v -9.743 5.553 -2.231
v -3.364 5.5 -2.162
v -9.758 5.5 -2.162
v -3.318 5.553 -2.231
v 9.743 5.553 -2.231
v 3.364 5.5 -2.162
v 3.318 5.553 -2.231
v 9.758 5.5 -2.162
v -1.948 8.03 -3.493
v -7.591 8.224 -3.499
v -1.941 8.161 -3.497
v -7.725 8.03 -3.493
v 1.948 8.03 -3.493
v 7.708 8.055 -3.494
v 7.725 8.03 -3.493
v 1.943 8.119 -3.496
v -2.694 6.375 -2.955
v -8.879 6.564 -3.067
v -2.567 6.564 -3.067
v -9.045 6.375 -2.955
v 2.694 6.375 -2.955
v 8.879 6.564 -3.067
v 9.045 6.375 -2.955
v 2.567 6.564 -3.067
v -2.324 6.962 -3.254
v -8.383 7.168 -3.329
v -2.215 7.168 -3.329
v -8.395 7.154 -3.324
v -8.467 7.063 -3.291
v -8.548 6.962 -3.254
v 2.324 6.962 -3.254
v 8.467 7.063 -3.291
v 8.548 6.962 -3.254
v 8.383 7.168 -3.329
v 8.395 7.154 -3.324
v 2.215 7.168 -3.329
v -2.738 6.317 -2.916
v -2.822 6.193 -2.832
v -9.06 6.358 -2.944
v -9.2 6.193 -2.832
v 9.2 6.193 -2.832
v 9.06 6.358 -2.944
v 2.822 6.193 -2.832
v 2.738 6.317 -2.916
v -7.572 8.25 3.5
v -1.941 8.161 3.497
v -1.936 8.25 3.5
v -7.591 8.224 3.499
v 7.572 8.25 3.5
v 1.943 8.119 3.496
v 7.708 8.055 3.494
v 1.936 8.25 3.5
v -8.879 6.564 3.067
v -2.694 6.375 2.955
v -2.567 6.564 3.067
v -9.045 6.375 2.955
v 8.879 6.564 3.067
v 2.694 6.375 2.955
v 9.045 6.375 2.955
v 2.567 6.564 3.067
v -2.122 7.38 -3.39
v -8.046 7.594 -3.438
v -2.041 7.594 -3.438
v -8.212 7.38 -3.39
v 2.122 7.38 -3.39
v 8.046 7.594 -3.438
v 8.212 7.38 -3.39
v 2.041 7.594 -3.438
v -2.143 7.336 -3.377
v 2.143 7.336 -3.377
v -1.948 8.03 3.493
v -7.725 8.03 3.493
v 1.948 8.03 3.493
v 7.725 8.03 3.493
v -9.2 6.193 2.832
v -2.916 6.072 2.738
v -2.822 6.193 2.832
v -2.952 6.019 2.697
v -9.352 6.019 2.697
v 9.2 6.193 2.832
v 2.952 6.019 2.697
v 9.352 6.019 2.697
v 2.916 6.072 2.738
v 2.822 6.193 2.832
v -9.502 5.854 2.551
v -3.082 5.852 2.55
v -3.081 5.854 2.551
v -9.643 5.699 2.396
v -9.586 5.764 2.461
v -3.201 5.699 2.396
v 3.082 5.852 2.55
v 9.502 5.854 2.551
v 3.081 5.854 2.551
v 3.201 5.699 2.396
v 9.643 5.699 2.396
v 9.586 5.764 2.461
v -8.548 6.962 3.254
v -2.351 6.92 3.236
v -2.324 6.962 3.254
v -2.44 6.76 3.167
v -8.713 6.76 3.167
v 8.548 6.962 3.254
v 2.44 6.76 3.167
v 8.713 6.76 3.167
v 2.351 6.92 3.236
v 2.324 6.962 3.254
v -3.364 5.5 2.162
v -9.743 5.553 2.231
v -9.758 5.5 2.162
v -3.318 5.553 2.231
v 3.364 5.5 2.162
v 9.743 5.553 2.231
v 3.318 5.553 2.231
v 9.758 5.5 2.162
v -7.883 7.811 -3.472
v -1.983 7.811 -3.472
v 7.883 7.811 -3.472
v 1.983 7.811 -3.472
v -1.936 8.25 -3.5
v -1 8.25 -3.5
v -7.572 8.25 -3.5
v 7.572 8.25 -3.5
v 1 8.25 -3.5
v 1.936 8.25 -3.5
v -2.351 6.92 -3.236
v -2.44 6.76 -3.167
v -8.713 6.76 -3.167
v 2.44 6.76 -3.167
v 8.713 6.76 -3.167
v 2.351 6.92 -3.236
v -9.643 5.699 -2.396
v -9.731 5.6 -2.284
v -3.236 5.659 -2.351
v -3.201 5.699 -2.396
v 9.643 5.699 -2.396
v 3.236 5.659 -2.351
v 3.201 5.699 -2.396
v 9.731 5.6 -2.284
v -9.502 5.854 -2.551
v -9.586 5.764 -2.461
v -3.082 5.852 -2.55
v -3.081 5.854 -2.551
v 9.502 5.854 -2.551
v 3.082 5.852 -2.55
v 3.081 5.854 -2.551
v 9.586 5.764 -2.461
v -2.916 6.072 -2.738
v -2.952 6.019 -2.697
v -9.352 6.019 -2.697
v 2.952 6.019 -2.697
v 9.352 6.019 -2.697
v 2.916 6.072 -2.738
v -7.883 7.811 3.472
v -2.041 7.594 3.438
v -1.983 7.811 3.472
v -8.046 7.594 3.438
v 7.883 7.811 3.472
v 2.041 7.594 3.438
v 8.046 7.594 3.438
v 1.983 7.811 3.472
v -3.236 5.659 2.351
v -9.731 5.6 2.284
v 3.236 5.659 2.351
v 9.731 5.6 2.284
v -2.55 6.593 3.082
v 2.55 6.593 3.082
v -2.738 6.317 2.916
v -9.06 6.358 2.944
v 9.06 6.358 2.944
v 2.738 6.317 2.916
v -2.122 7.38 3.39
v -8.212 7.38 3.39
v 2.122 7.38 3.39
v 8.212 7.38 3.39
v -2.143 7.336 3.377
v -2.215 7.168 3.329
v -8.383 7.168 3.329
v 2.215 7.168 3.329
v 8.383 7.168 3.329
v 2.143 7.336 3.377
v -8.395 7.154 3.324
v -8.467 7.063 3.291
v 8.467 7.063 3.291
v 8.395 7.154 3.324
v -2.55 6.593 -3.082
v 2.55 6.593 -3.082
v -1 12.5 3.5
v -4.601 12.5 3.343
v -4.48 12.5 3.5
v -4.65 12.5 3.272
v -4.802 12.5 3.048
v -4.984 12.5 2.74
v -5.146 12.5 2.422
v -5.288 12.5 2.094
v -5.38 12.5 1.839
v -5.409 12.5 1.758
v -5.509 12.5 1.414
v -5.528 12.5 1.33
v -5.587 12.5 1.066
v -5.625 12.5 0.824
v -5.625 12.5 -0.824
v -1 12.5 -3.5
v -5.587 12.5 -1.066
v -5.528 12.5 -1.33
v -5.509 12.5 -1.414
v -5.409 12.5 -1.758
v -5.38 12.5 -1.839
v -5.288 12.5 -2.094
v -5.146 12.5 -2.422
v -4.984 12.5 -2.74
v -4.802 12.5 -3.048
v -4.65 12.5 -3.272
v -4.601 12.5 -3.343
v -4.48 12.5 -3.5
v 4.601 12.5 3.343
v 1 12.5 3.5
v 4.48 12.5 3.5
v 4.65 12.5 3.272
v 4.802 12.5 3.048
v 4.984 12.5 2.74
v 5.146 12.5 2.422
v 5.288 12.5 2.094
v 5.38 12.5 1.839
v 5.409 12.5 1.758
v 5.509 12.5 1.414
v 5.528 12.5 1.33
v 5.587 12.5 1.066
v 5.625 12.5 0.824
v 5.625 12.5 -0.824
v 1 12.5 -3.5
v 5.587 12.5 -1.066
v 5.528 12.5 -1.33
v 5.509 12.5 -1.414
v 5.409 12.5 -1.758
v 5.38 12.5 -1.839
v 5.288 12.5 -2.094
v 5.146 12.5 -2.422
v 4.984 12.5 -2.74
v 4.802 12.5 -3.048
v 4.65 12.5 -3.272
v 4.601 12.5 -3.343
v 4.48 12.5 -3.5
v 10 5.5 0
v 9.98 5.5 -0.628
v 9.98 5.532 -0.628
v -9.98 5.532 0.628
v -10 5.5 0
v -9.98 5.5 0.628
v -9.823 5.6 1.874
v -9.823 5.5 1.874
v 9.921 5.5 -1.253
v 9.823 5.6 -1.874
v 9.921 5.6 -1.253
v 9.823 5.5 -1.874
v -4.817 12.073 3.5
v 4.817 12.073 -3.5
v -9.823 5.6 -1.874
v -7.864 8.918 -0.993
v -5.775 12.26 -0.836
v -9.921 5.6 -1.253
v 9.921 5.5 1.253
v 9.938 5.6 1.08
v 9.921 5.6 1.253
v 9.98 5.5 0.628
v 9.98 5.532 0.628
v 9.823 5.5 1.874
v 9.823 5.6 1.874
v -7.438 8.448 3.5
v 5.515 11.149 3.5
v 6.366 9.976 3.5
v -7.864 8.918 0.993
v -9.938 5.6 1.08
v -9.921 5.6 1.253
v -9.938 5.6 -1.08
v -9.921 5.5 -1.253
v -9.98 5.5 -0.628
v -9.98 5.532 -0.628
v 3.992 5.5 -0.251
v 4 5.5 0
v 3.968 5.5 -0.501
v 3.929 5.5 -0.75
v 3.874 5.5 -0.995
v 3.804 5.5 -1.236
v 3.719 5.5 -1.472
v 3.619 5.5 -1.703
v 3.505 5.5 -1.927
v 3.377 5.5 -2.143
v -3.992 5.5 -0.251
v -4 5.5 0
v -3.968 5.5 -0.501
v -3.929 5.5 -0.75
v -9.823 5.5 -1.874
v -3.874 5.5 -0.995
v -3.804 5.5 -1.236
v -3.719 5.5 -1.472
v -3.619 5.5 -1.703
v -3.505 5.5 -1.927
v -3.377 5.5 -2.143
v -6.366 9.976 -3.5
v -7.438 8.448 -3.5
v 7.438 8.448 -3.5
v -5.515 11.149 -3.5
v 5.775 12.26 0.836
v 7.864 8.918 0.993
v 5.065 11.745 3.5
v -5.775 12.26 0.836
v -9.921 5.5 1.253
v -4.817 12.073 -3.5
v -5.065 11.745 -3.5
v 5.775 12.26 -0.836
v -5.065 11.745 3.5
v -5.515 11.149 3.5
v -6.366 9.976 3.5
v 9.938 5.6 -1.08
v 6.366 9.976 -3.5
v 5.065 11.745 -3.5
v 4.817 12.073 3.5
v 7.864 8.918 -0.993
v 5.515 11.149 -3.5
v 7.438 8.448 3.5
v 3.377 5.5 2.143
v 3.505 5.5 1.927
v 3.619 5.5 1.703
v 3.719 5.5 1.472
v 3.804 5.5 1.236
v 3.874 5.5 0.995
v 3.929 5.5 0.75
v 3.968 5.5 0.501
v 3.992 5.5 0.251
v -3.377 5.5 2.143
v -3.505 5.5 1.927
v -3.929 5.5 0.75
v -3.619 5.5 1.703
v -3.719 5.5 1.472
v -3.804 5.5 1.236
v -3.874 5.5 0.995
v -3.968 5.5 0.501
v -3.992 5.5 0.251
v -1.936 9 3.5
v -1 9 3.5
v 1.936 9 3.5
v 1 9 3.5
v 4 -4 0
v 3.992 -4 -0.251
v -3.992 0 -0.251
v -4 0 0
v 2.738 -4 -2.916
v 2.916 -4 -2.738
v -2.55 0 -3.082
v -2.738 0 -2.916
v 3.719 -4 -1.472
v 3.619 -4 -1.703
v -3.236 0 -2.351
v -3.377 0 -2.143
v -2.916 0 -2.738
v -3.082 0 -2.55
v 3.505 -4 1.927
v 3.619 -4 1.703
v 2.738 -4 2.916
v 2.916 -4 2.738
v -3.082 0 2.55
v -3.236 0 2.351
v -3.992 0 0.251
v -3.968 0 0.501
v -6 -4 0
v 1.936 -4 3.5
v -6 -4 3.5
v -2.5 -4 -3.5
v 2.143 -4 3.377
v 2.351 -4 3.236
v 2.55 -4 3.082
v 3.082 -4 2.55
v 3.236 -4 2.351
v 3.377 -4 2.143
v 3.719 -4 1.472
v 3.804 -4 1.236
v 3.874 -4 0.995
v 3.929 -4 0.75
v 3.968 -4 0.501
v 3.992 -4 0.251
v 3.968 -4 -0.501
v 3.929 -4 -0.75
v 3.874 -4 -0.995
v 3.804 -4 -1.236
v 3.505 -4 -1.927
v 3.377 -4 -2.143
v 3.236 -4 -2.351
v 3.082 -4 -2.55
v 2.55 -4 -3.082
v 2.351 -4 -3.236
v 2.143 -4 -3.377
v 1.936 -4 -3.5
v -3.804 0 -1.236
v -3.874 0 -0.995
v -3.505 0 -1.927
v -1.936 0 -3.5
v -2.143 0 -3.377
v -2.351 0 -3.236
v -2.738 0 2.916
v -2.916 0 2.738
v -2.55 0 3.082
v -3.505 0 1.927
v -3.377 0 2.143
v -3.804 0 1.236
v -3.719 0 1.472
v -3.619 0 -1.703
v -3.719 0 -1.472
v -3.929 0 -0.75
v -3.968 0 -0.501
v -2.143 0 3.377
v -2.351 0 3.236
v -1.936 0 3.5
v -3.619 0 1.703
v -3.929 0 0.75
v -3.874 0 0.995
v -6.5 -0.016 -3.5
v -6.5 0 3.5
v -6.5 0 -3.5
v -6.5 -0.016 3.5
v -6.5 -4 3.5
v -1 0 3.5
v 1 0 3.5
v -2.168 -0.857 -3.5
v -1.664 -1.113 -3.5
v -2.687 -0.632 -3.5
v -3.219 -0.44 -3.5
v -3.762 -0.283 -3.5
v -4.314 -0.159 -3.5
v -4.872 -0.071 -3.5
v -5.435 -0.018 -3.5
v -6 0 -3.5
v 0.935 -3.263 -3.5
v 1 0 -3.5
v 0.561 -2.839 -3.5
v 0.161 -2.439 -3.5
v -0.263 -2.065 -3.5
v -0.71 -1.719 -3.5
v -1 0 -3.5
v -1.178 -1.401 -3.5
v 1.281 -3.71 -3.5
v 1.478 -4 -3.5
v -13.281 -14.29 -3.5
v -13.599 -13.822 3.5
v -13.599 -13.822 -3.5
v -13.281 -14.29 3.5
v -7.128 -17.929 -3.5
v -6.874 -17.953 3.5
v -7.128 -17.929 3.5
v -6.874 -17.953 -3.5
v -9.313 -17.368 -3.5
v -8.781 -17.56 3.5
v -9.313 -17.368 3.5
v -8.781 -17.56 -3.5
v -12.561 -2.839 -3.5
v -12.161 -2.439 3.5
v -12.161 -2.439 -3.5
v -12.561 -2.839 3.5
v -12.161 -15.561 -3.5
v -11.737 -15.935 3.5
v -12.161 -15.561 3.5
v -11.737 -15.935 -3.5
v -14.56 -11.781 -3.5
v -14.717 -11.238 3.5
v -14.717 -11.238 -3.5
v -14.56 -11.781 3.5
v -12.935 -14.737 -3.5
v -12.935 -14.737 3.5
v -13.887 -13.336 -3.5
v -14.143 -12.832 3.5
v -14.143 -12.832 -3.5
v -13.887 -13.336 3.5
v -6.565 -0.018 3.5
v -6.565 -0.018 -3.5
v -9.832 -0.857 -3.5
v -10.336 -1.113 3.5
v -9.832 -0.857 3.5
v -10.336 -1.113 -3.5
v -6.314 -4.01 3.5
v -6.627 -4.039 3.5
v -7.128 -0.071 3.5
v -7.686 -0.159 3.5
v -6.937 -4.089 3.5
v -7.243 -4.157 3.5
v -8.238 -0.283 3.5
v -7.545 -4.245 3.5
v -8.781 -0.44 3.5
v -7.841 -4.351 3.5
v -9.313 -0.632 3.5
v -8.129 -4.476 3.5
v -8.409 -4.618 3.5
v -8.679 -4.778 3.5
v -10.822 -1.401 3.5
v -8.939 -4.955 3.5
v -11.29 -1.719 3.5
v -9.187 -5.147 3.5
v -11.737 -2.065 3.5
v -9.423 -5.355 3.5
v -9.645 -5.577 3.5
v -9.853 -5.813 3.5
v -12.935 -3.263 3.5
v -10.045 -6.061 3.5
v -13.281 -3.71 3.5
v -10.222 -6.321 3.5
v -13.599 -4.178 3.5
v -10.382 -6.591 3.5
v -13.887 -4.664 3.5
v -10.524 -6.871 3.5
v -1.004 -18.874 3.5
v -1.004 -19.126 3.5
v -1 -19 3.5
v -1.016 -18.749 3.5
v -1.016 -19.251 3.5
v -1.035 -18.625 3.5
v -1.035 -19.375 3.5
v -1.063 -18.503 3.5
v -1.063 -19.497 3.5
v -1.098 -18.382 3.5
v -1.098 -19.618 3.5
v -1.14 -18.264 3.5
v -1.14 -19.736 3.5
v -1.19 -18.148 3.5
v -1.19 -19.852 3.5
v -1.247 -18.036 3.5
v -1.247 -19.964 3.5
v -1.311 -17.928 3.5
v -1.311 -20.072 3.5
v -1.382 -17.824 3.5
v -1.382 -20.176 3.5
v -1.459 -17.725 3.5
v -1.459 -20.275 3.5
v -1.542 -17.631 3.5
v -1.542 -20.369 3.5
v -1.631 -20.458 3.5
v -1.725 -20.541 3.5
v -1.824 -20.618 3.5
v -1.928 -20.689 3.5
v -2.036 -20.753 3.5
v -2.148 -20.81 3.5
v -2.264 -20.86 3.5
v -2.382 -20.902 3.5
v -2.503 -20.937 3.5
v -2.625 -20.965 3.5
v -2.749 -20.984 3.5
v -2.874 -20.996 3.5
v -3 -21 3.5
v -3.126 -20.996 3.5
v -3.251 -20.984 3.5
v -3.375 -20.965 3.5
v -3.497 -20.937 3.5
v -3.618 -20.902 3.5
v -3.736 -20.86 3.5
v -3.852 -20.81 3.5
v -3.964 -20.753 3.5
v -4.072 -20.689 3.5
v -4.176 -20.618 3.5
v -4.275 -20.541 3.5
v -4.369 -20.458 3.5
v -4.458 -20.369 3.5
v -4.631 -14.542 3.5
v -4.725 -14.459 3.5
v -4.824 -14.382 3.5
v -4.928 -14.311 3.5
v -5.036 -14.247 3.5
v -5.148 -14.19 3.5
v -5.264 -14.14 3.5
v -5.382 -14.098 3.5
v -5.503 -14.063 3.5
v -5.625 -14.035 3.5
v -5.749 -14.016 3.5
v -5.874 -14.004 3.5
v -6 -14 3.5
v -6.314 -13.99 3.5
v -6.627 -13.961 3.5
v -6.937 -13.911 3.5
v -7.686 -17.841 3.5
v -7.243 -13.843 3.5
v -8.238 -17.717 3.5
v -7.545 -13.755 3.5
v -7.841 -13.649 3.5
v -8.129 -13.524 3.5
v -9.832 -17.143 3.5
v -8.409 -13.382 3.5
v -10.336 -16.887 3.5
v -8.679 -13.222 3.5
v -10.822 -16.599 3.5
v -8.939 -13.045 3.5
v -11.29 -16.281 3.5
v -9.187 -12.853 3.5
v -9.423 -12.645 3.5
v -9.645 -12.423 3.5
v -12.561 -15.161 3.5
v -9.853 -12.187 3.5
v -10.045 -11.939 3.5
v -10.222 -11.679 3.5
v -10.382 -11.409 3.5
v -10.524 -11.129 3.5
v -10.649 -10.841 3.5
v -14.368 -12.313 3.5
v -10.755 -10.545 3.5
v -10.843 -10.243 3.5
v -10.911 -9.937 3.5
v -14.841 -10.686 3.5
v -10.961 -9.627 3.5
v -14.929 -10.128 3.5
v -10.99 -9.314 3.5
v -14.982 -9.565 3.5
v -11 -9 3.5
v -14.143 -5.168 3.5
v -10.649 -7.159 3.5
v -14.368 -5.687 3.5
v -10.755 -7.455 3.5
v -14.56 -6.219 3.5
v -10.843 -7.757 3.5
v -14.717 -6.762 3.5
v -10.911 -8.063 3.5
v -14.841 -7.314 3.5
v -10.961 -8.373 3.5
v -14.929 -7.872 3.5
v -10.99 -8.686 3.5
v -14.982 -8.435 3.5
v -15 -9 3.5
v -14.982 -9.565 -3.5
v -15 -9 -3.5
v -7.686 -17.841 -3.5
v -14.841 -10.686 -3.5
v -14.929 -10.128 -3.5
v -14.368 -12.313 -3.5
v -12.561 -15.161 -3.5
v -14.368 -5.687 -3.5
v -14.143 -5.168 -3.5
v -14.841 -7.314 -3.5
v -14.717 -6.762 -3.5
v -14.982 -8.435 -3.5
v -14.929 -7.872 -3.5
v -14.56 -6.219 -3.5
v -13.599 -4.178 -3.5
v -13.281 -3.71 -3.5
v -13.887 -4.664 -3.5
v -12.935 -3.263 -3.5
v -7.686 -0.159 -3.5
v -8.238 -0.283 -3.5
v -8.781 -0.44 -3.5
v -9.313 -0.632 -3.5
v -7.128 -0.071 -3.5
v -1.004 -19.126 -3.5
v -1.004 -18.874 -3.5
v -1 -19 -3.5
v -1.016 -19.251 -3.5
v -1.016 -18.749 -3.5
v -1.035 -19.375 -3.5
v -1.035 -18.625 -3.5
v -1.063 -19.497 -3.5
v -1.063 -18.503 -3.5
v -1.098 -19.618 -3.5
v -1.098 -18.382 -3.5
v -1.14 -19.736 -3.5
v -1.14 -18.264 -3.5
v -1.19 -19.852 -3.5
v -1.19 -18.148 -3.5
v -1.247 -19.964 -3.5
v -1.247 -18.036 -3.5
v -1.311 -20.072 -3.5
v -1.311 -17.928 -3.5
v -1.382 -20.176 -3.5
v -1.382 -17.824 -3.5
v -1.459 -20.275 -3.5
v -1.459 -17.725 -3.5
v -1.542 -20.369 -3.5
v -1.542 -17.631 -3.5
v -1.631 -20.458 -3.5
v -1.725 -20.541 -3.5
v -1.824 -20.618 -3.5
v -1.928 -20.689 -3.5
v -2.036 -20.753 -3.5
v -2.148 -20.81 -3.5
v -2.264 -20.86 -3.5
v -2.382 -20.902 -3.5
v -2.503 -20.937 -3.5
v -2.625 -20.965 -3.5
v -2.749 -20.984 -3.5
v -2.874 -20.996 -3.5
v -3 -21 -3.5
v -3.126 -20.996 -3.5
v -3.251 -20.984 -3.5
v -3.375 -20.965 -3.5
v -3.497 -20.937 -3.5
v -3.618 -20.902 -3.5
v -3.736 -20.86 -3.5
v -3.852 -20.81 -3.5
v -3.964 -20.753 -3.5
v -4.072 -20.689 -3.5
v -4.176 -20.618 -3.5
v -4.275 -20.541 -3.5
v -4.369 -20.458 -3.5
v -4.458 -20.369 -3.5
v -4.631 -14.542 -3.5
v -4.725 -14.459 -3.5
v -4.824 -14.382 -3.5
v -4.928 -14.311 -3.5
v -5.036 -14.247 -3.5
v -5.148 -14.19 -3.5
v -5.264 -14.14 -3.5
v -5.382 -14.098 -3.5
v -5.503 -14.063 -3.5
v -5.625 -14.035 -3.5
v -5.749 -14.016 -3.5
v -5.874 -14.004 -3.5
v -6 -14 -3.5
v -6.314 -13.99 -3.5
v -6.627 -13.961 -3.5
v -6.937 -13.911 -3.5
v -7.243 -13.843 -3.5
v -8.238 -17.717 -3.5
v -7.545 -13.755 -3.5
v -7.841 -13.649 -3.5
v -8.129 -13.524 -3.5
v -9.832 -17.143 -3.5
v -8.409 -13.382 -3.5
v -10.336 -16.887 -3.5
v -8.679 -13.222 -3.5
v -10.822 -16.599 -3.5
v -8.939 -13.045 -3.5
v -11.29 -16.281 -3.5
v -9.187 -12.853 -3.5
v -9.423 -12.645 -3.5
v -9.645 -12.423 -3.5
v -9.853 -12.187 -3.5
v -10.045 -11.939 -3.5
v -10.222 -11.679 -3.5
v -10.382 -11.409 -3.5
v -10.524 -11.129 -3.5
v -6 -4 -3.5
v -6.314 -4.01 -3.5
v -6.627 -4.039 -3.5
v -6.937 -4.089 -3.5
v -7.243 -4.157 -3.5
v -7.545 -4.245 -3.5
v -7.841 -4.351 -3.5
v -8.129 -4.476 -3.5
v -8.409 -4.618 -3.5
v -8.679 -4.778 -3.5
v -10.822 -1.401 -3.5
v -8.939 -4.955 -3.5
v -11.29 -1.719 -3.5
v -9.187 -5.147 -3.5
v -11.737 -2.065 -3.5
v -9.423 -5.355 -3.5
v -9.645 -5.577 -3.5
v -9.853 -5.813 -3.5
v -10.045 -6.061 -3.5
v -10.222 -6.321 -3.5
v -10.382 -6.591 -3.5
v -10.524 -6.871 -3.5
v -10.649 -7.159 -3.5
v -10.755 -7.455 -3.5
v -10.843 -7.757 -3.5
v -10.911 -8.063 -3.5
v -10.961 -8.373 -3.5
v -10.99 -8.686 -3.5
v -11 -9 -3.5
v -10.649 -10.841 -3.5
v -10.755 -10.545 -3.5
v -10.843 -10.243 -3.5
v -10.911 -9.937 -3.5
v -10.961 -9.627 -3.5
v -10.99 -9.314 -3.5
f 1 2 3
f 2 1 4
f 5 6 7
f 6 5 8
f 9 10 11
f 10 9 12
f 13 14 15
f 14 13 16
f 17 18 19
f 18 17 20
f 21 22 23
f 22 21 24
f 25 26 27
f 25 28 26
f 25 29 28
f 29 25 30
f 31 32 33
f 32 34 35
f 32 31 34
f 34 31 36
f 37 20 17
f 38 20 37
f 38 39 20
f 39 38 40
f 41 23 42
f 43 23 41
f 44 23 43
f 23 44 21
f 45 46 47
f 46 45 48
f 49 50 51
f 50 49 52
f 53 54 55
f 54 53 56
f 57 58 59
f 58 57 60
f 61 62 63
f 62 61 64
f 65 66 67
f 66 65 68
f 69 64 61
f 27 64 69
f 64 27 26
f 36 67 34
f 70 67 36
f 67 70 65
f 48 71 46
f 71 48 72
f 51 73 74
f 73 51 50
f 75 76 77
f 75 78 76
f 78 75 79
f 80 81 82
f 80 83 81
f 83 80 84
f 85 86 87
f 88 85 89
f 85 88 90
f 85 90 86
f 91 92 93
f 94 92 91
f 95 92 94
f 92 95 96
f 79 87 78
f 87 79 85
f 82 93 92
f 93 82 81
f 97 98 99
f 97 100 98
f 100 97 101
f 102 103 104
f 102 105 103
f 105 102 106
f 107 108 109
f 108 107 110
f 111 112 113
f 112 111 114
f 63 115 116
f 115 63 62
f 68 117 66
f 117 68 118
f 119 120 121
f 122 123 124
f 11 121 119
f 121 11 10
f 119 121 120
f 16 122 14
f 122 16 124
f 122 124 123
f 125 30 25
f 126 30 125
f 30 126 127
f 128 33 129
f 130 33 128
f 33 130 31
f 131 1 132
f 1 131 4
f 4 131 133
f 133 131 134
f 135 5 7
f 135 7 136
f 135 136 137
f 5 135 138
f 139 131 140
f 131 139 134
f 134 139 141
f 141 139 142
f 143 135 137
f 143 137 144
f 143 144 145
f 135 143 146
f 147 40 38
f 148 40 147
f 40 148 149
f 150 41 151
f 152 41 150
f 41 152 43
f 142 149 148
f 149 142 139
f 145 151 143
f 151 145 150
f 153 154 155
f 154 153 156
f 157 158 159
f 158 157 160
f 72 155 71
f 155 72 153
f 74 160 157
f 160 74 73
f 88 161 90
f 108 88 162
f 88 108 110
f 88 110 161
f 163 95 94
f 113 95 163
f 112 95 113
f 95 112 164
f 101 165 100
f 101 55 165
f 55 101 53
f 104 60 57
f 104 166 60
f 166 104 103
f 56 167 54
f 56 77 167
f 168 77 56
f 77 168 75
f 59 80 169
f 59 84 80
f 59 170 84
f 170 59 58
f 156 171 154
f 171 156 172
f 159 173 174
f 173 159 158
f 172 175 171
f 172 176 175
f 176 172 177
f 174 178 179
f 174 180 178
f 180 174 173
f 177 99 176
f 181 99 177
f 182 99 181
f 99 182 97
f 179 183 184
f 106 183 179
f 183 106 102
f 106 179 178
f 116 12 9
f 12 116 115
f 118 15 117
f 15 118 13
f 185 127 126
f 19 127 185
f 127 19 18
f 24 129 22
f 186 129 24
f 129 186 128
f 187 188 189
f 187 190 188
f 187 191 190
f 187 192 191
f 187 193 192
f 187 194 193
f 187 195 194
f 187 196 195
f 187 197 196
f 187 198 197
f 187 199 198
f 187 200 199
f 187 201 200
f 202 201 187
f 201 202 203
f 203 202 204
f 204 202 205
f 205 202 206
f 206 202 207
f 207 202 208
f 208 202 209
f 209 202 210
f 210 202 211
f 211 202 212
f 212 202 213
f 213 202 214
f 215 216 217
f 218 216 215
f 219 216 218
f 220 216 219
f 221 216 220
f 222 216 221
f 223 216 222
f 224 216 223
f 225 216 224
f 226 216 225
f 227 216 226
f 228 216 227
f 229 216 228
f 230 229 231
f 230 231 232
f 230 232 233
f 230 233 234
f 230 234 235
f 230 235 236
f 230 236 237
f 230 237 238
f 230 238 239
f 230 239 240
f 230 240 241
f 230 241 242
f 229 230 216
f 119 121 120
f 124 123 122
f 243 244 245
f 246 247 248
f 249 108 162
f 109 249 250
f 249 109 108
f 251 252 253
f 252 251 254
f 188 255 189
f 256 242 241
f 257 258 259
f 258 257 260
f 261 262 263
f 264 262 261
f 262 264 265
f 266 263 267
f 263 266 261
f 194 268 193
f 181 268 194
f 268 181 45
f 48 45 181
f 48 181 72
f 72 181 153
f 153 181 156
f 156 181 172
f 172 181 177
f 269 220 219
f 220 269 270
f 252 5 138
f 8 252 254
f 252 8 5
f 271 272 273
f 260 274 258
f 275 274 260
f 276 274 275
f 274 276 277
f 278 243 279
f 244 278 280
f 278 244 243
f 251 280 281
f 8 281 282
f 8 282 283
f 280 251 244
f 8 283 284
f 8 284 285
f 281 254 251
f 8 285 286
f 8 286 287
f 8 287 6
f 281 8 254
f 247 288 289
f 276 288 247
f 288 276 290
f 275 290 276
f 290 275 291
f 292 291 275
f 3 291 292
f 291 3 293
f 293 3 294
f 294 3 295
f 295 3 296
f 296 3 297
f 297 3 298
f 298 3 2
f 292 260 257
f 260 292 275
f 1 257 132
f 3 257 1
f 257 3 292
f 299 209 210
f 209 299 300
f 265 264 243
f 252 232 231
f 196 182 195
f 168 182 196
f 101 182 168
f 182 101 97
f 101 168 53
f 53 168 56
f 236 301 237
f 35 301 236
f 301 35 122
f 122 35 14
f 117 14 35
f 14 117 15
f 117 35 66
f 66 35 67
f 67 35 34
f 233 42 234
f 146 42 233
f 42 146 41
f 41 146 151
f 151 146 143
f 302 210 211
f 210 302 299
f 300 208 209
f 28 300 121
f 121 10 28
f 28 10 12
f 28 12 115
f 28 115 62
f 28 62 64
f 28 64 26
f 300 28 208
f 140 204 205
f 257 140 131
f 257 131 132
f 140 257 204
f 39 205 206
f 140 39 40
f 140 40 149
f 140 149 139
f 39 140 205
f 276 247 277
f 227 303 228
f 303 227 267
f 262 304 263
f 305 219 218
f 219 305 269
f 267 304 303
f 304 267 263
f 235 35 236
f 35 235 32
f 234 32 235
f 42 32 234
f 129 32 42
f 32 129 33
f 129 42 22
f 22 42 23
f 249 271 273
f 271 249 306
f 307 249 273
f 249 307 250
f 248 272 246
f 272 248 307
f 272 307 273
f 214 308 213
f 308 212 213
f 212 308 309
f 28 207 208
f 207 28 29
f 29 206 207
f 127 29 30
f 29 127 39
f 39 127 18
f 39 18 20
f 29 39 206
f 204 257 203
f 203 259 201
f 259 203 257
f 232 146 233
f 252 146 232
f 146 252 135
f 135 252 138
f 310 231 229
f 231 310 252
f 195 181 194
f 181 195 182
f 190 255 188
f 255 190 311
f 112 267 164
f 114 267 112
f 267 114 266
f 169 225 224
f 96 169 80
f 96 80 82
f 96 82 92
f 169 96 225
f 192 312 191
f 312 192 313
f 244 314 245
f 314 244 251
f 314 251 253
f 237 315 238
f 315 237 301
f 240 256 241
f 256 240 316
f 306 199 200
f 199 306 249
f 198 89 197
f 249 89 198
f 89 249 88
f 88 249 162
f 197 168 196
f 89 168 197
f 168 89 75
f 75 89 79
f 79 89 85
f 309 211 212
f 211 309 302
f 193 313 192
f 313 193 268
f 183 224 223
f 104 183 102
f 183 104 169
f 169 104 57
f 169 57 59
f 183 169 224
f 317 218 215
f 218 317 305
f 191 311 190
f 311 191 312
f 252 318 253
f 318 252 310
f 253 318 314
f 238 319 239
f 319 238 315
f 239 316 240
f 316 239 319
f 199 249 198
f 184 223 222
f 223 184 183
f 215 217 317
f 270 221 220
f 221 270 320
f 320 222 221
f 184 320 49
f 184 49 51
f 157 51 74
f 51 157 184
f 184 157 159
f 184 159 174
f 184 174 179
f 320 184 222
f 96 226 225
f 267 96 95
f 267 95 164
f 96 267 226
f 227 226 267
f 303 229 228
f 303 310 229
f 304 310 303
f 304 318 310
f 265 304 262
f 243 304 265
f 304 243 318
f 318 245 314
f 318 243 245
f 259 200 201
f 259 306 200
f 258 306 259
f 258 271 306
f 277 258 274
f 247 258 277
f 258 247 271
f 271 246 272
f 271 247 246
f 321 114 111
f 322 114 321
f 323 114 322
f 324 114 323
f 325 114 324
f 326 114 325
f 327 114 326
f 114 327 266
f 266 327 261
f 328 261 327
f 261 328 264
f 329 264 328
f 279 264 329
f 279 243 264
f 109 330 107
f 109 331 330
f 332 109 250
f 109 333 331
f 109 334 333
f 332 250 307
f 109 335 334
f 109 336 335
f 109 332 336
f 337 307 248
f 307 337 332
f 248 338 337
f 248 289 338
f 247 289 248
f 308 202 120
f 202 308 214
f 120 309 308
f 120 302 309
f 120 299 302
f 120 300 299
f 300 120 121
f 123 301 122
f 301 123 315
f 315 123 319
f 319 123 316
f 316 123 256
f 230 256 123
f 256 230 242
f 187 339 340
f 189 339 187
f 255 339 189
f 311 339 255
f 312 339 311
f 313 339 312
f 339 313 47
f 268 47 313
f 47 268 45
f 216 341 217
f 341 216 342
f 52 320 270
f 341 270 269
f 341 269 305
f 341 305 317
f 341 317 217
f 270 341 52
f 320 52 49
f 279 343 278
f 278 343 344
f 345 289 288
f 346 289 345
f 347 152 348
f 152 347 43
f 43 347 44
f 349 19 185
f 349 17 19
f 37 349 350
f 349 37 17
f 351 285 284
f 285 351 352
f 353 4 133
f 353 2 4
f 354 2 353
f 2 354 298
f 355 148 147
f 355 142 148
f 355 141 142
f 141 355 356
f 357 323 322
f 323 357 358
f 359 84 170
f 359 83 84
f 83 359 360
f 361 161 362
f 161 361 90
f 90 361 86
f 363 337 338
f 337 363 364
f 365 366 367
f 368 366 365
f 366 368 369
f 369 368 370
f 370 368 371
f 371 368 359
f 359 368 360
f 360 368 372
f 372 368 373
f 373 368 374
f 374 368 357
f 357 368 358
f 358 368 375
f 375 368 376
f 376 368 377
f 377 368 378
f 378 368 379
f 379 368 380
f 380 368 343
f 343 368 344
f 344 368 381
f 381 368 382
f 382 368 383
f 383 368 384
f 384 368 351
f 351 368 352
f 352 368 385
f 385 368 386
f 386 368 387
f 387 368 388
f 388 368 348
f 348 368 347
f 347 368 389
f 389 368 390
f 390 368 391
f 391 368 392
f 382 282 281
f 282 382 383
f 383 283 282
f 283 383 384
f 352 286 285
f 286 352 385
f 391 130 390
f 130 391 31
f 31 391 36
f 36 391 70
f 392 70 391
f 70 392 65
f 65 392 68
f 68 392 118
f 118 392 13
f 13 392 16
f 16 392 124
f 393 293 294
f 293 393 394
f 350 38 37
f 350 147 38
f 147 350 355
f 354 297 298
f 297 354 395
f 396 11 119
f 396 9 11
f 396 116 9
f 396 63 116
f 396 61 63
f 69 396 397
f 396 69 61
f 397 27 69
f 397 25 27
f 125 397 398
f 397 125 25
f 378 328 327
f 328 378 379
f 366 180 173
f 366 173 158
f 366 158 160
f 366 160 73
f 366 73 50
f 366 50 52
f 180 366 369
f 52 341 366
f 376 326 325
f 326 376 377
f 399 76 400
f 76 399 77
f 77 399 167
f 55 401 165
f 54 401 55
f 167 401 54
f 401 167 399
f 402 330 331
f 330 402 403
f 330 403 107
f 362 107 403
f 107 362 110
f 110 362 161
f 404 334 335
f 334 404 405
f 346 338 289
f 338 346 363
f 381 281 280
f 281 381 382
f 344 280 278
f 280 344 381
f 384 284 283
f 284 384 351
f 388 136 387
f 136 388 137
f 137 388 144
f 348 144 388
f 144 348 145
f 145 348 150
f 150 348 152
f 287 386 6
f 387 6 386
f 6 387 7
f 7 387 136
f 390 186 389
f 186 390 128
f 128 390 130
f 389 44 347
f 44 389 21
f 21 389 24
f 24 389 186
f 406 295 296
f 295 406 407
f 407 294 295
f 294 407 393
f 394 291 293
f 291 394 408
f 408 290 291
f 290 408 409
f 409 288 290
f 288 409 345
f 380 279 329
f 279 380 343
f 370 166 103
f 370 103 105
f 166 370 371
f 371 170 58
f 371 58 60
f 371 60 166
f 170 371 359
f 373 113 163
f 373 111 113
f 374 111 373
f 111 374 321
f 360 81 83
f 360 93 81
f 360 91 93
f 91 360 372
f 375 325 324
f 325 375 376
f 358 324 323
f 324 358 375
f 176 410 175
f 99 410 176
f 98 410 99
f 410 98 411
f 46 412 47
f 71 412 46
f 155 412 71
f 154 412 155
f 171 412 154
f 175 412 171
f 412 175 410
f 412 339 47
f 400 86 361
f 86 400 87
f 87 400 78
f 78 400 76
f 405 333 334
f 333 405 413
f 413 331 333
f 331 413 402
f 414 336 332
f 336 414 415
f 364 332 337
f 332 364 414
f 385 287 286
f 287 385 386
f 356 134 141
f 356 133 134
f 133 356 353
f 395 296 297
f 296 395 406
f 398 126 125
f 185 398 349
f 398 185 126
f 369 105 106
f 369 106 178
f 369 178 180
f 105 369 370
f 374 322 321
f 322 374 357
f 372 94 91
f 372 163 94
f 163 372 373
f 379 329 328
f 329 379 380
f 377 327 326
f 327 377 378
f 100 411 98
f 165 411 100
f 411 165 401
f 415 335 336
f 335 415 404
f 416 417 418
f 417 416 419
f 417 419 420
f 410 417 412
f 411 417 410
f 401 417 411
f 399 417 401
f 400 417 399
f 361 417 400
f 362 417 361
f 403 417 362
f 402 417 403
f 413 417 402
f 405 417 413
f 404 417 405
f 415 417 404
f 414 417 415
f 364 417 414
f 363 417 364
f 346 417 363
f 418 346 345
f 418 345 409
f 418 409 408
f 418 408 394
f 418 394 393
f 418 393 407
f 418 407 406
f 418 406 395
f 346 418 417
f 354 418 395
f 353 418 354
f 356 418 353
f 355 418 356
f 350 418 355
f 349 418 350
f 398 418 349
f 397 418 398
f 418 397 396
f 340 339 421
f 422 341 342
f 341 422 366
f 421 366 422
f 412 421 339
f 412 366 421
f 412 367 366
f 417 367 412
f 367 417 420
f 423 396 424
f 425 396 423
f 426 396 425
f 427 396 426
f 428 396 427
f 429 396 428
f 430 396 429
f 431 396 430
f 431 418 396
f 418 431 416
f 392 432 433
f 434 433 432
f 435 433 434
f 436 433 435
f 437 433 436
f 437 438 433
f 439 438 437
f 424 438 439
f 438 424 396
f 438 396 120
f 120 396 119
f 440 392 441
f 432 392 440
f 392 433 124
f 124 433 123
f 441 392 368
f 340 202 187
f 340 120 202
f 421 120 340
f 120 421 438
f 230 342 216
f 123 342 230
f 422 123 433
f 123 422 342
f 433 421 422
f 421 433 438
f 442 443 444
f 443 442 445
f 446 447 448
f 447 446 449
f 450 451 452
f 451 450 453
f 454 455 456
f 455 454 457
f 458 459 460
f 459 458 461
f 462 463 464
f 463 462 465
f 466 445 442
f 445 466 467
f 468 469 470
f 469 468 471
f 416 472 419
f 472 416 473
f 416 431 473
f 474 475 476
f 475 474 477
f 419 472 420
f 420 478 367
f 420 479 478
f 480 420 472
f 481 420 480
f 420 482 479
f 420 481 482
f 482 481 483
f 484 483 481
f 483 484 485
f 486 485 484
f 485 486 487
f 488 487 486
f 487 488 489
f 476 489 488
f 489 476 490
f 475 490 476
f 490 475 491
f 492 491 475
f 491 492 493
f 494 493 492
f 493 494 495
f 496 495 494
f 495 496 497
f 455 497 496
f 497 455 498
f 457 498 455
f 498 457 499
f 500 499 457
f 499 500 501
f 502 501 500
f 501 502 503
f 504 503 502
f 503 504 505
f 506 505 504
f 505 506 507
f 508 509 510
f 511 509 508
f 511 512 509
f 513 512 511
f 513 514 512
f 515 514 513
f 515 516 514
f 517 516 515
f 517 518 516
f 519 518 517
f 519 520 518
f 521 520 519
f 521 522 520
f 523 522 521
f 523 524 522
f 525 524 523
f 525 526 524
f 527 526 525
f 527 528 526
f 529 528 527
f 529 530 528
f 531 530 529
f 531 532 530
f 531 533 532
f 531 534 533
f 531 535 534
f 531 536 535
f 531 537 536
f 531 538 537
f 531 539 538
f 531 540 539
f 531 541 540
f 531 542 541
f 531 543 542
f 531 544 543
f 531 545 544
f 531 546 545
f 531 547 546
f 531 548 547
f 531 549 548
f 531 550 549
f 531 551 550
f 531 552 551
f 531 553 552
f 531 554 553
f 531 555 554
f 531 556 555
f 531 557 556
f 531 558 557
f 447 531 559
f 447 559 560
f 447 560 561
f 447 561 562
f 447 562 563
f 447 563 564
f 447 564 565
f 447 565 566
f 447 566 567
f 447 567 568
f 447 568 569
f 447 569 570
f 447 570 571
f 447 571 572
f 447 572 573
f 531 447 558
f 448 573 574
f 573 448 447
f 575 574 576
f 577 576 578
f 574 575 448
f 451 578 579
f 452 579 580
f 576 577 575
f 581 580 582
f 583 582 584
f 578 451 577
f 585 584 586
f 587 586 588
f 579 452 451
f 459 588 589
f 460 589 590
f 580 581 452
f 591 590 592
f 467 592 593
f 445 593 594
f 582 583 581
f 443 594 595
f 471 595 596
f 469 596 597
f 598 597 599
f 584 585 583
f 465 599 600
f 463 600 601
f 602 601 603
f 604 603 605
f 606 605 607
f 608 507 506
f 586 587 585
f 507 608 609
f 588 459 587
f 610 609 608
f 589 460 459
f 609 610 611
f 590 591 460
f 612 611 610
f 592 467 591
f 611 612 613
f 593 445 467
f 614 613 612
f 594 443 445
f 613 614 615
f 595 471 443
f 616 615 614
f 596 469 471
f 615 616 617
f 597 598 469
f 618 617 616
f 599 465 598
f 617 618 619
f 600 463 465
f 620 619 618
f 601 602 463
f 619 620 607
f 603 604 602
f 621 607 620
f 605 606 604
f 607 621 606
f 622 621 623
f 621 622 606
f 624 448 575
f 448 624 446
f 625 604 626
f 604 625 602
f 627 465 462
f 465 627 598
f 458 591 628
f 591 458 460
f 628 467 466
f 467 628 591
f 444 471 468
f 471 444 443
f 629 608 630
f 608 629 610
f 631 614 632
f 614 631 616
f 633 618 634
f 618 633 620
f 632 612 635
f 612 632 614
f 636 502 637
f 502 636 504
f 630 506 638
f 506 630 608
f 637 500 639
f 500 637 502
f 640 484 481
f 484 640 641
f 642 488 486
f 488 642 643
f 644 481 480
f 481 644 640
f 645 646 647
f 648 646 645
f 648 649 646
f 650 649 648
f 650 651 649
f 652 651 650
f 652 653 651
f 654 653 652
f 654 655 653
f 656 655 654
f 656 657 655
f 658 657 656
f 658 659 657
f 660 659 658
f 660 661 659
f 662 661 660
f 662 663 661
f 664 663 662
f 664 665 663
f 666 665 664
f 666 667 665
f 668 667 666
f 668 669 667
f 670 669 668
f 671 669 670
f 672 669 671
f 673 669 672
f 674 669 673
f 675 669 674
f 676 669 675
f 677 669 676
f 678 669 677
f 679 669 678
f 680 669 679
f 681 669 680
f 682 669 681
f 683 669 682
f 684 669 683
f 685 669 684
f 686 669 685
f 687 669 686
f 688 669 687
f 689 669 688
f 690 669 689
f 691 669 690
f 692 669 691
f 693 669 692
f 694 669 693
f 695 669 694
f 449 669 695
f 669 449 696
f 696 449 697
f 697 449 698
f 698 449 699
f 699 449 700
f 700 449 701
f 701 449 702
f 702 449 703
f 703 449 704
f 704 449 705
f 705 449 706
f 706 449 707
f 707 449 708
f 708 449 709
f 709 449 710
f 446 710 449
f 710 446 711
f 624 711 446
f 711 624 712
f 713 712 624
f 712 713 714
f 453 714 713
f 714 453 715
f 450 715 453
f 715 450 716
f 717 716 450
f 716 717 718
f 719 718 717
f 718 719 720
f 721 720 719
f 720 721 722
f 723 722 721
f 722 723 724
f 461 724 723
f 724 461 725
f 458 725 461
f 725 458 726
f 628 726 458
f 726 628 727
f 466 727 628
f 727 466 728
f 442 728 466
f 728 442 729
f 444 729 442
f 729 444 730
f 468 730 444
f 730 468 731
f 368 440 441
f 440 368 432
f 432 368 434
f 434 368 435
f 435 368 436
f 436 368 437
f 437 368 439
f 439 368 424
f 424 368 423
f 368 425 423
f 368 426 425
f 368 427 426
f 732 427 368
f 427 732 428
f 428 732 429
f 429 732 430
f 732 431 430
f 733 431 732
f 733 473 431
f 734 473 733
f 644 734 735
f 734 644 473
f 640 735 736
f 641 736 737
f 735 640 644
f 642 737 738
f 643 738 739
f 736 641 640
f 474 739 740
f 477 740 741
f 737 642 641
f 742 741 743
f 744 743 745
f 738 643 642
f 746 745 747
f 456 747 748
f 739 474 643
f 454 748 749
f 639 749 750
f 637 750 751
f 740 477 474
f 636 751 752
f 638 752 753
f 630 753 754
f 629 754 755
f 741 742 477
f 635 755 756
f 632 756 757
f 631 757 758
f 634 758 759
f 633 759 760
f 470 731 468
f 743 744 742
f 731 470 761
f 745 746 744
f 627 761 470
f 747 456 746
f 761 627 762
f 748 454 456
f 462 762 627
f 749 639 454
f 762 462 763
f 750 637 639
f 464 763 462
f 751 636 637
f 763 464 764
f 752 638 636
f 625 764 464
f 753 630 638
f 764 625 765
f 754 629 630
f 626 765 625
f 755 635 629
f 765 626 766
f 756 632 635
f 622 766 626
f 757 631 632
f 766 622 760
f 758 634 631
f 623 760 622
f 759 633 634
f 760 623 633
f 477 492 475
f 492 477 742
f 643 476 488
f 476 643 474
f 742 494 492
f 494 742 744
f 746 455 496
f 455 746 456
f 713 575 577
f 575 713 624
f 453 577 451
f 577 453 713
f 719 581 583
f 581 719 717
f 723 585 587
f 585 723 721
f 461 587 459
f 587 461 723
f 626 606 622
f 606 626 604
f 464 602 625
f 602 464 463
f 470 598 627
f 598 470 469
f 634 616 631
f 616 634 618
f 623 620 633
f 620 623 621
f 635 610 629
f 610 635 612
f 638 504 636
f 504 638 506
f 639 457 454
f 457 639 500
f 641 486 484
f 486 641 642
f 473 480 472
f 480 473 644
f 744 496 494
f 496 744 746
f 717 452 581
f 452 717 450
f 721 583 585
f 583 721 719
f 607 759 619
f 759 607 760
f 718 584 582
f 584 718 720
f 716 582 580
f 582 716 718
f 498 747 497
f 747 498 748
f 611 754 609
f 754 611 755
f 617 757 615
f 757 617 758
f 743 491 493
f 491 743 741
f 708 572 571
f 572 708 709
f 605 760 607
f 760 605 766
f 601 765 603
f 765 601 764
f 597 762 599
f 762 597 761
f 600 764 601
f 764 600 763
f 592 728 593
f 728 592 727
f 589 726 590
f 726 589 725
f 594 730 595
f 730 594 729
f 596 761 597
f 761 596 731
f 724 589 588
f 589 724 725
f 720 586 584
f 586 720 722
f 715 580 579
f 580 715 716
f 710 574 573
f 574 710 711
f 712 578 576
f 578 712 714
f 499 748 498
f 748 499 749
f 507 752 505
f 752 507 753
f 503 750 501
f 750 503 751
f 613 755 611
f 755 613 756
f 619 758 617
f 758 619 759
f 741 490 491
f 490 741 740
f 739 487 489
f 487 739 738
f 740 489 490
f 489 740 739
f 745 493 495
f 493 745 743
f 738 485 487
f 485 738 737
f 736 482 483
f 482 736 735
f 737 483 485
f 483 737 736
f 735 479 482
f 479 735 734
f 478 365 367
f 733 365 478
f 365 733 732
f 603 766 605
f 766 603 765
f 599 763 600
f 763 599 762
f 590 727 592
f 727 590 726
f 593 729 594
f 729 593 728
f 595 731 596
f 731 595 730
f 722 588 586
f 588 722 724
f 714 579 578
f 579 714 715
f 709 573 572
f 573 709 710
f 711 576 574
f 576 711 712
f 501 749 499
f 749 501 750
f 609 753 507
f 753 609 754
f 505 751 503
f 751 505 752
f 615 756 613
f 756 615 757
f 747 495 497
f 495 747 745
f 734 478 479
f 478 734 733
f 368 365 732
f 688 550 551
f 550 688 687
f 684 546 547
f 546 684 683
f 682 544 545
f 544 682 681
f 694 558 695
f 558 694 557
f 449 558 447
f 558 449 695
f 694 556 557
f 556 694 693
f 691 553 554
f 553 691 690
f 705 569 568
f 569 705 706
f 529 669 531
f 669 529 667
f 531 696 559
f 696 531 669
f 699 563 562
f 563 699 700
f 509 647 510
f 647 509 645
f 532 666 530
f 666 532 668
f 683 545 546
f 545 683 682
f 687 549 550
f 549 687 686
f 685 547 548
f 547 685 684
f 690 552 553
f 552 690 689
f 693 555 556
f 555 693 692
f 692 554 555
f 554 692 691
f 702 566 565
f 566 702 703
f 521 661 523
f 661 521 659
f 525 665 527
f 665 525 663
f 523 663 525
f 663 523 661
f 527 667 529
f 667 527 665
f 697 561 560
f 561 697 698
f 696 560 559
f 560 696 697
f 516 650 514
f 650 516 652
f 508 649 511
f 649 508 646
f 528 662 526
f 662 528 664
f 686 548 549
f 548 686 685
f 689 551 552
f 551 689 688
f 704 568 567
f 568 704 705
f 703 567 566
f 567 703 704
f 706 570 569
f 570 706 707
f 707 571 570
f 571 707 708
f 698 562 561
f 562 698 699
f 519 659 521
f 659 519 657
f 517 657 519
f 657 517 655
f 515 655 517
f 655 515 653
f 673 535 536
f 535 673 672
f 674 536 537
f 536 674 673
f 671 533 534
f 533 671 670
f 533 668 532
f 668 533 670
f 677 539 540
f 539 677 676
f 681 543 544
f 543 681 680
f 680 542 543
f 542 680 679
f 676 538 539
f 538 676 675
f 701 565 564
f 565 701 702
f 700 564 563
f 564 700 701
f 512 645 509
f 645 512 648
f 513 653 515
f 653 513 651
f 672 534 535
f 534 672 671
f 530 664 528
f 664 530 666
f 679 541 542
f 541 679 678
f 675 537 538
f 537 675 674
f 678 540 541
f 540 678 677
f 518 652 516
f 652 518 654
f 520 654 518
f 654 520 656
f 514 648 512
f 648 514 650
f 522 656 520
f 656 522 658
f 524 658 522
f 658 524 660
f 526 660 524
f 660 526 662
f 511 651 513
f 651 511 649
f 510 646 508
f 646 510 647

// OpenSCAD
$fn=100;
/*
    Parametric Hooks For Tslot Mounting
    By Brian Khuu (2020)
    
    Got a desk with tslot rails, would be nice to mount stuff on it...
*/

/* [Tslot Spec] */
// CenterDepth
tslot_centerdepth = 5+0.5;
// CenterWidth
tslot_centerwidth = 8; // Gap to slot the clip though
// For the wedge... its based on a 4040mm Tslot... so may need to modify polygon() in this script

/* [Hook Spec] */
// Hook Diameter
hookdia=10;
// Hook Flange
hookflange=3;
// Hook Width
hookwidth=7;
// Hook Thickness
hookthickness=4;

union()
{
    difference()
    {
        union()
        {
            // Tslot Mount Inner
            translate([0, tslot_centerdepth, 0])
                intersection()
                {
                    heightlim=7;
                    linear_extrude(height = hookwidth, center = true)
                        polygon(points=[[-10,0],[-5,8],[5,8],[10,0]]);
                    rotate([-90,0,0])
                        intersection()
                        {
                            hull()
                            {
                                translate([0,0,0]) cylinder(r=10, h=0.1);
                                translate([0,0,8]) cylinder(r=5, h=0.1);
                            }
                            union()
                            {
                                translate([0,0,heightlim/2+tslot_centerdepth/4]) 
                                    cube([20,20,heightlim-tslot_centerdepth/2], center = true);
                                intersection()
                                {
                                    rotate([0,90,0])
                                        translate([-tslot_centerdepth/2,0,0]) 
                                        cylinder(r=hookwidth/2, h=20, center = true);
                                    cube([20,20,hookwidth+1], center = true);
                                }
                            }
                        }
                }

            // tslot mount shaft
            translate([0, -hookthickness, 0])
            rotate([-90,0,0])
                intersection()
                {
                    cheight = tslot_centerdepth+hookthickness+hookwidth/2;
                    union()
                    {
                        cylinder(r=tslot_centerwidth/2, h=cheight);
                        translate([-hookwidth/2+1, 0, hookthickness-hookthickness/2])
                            cube([tslot_centerwidth,hookwidth,hookthickness], center=true);
                    }
                    translate([0, 0, cheight/2])
                        cube([tslot_centerwidth+10, hookwidth, cheight], center=true);
                }
        }
        
        //
        translate([0, 100/2, 0])
            cube([2,100,100], center=true);

    }
 
    // Hook
    translate([-hookdia/2-1, -hookdia/2-hookthickness, 0])
    rotate([0,0,-90])
    translate([0,0,0])
    union()
    {
        translate([0, 0, 0])
            difference()
            {
                cylinder(r=hookdia/2+hookthickness, h=hookwidth, center=true);
                translate([0,0,0])
                    cylinder(r=hookdia/2, h=hookwidth+2, center=true);
                translate([0,hookdia/2,0])
                    cube([hookdia,hookdia,hookwidth+2], center=true);
                translate([hookdia/2,hookdia/2,0])
                    cube([hookdia,hookdia,hookwidth+2], center=true);
            }
        translate([0, 0, 0])
            hull()
            {
                translate([hookdia/2+hookthickness/2,0,0])
                    cylinder(r=hookthickness/2, h=hookwidth, center=true);
                translate([hookdia/2+hookthickness/2+hookflange,hookflange,0])
                    cylinder(r=hookthickness/2, h=hookwidth, center=true);
            }
    }
}
